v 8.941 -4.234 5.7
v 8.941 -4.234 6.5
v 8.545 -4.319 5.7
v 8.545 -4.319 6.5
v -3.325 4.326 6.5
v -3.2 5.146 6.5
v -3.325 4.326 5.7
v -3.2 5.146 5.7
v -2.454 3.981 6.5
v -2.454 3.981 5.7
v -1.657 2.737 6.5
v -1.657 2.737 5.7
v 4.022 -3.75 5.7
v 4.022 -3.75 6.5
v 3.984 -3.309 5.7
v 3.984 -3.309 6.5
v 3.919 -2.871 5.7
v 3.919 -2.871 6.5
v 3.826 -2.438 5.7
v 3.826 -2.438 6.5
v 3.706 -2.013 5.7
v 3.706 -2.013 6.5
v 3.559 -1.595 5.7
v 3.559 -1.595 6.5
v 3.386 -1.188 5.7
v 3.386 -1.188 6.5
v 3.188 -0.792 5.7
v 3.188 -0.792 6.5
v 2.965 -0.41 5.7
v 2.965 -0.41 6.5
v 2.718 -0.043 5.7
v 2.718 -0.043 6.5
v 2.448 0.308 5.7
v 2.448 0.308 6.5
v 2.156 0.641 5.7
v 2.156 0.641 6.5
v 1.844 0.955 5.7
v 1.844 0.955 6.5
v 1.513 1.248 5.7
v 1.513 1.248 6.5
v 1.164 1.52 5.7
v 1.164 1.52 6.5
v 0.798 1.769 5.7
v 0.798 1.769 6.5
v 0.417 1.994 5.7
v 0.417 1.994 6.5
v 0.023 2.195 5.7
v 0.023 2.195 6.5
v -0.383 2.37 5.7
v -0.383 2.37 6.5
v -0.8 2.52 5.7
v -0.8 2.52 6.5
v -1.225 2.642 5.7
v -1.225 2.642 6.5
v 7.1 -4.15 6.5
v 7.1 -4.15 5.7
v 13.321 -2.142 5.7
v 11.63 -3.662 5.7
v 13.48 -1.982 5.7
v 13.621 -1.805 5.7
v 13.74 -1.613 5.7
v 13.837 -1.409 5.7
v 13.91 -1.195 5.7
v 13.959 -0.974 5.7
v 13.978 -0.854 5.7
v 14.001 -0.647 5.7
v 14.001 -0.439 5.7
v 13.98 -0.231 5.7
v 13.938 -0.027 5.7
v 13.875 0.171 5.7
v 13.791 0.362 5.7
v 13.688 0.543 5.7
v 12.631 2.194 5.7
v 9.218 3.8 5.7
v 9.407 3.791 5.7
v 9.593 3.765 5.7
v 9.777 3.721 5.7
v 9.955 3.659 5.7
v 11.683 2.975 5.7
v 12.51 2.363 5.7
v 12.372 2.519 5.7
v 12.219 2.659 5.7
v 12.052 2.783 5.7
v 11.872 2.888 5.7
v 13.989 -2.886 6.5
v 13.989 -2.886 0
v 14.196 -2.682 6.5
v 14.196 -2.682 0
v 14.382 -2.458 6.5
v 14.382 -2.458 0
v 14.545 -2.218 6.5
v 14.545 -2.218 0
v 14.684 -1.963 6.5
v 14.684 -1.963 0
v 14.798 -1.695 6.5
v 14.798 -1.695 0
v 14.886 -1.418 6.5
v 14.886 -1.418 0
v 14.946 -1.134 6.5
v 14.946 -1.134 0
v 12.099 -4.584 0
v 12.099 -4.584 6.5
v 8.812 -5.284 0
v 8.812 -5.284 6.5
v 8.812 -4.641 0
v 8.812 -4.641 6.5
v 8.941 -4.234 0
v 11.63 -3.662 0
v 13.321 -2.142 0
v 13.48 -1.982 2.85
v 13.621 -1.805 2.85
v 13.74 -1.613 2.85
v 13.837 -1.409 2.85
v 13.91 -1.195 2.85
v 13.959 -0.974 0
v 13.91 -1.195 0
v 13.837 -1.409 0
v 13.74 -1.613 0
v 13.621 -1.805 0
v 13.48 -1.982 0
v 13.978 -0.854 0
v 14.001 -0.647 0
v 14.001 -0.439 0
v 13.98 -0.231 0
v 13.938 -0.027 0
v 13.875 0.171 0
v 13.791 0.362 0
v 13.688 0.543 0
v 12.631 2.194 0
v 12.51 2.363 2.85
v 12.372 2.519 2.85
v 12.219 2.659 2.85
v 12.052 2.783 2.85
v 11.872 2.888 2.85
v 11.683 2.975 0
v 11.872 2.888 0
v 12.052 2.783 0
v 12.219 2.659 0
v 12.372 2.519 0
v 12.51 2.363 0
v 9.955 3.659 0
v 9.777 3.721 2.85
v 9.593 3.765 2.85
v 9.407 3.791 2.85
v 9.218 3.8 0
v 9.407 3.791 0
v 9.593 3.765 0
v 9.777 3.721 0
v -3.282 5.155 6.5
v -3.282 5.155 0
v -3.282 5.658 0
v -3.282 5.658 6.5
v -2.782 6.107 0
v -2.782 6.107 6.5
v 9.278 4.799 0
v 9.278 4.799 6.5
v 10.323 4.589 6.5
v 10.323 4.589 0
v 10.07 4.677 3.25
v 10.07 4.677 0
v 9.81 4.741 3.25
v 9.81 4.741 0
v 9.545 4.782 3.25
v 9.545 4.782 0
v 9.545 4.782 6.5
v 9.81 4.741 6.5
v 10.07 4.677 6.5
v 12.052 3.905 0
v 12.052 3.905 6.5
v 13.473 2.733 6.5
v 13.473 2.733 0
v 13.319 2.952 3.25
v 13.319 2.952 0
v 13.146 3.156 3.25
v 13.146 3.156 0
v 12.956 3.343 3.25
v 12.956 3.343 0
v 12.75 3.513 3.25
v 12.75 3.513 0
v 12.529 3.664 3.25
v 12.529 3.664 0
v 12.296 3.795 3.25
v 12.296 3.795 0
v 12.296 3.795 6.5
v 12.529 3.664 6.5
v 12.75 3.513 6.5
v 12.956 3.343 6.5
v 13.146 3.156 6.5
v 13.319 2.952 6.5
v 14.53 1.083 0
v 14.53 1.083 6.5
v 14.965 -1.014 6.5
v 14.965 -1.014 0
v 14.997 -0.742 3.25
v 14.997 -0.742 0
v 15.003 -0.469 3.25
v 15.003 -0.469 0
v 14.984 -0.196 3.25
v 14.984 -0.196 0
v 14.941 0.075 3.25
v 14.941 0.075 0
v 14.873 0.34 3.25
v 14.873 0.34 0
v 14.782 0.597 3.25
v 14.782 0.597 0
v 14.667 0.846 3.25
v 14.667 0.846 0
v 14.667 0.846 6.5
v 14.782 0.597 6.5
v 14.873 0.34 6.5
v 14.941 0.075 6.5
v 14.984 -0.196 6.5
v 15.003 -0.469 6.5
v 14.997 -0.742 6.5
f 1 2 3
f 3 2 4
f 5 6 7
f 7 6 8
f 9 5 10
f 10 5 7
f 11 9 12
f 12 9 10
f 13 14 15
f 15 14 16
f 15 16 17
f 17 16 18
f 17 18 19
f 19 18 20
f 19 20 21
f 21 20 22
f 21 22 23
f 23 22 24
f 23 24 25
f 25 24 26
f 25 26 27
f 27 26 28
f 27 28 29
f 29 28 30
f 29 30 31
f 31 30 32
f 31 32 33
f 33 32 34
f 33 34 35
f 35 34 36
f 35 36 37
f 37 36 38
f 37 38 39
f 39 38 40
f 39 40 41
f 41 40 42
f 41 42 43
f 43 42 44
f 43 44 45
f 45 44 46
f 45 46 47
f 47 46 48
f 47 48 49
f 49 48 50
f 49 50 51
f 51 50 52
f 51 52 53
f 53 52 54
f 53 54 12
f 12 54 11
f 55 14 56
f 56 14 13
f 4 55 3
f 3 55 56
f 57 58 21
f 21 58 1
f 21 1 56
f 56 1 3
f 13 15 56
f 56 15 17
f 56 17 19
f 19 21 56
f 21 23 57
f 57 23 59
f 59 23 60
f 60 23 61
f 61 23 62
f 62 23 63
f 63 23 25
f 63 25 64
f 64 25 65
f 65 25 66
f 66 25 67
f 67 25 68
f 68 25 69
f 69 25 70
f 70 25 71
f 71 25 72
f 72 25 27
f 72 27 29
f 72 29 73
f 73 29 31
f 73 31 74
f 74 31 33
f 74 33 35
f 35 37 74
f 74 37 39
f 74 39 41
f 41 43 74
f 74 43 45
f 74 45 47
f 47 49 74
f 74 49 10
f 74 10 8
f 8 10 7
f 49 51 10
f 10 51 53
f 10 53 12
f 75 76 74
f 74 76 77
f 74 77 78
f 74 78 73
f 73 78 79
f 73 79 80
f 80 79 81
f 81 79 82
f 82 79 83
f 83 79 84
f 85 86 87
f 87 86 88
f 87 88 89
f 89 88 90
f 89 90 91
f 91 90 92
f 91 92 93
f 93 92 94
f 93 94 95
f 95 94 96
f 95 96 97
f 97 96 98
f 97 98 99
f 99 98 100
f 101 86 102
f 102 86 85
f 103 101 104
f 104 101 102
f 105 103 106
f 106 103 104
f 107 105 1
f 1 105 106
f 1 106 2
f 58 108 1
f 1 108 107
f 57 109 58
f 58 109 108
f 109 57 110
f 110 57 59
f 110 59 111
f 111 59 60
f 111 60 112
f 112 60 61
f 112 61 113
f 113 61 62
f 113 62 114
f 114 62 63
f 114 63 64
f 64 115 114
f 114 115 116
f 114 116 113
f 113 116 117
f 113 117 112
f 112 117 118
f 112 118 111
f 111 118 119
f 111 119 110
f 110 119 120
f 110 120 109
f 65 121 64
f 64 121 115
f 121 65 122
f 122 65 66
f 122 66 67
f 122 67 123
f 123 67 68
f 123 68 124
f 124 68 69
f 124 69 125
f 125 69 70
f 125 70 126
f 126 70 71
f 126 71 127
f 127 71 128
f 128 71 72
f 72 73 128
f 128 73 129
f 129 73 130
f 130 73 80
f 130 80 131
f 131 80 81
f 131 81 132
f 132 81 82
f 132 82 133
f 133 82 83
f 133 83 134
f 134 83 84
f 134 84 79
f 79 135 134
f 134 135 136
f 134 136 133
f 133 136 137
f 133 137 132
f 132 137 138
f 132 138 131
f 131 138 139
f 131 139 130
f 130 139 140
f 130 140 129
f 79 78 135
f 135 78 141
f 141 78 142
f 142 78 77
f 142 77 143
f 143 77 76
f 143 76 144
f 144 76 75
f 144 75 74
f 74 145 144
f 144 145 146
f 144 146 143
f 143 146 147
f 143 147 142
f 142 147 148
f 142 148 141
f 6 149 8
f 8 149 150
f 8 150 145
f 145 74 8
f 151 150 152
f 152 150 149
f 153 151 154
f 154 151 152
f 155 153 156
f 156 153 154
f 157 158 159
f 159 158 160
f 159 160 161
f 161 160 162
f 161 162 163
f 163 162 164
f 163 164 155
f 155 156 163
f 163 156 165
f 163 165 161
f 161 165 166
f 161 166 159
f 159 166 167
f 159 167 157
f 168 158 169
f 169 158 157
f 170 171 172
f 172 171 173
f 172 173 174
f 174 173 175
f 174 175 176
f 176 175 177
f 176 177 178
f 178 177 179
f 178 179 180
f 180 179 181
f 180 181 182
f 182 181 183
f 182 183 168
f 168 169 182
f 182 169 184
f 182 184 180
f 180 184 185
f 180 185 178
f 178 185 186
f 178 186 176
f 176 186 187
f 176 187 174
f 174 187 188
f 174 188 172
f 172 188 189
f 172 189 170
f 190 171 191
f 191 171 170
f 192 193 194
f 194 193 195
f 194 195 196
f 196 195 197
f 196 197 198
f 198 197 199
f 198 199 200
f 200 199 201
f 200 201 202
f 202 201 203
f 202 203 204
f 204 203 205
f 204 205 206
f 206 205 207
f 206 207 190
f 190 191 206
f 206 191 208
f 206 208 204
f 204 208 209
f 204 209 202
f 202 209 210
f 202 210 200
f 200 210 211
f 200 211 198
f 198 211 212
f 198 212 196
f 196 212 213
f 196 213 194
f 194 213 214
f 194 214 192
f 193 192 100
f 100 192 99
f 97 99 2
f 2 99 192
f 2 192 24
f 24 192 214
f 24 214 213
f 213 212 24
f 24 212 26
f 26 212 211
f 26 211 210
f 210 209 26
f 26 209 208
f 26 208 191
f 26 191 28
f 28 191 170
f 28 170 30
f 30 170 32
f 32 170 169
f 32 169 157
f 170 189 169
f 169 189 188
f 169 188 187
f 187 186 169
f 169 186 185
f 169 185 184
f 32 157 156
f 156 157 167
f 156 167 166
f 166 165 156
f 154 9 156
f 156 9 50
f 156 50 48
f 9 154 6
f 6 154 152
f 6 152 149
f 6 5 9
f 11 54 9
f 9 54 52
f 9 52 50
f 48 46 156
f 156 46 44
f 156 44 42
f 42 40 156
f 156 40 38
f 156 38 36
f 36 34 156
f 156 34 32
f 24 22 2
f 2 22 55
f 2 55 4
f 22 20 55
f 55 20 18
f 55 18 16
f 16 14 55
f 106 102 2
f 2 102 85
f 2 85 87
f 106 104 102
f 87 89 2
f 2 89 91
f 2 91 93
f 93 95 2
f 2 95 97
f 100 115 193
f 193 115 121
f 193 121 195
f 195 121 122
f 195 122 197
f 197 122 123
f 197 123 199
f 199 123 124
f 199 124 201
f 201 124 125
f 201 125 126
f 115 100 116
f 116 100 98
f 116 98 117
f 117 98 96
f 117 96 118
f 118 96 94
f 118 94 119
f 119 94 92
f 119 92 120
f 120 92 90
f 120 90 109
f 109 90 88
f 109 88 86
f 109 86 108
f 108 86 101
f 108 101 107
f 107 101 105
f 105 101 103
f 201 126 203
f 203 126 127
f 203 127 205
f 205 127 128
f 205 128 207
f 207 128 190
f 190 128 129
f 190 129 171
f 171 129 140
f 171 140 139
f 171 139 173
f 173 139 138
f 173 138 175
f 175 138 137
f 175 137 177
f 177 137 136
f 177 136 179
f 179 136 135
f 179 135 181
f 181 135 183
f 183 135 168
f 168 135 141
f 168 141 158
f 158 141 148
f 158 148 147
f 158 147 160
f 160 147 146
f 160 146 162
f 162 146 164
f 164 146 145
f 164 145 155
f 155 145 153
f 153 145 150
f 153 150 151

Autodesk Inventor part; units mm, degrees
ref_plane "YZ Plane" through (0, 0, 0) normal (1, 0, 0) x (0, 1, 0)
ref_plane "XZ Plane" through (0, 0, 0) normal (0, 1, 0) x (-1, 0, 0)
ref_plane "XY Plane" through (0, 0, 0) normal (0, 0, 1) x (1, 0, 0)
sketch "Boceto1" plane through (0, 0, 0) normal (0, 0, 1) x (1, 0, 0)
  line L0 (8.9411, -4.2344) -> (11.6298, -3.6616)
  line L1 (11.6298, -3.6616) -> (13.3209, -2.1424)
  arc A0 (13.3209, -2.1424) -> (13.9587, -0.9739) centre (11.9843, -0.6546) ccw
  line L2 (13.9587, -0.9739) -> (13.978, -0.8543)
  arc A1 (9.9548, 3.6595) -> (9.2184, 3.8) centre (9.2184, 1.8) ccw
  line L3 (9.9548, 3.6595) -> (11.6833, 2.9749)
  arc A2 (12.6312, 2.1939) -> (11.6833, 2.9749) centre (10.9469, 1.1154) ccw
  line L4 (12.6312, 2.1939) -> (13.688, 0.5435)
  line L5 (14.1, 2.7373) -> (14.1, -1.982) construction
  arc A3 (13.978, -0.8543) -> (13.688, 0.5435) centre (12.0037, -0.535) ccw
  line L6 (-3.2, 5.1465) -> (9.2184, 3.8)
  arc A4 (10.323, 4.5892) -> (9.2779, 4.7994) centre (9.2184, 1.8) ccw
  line L7 (10.323, 4.5892) -> (12.0516, 3.9047)
  arc A5 (13.4734, 2.7331) -> (12.0516, 3.9047) centre (10.9469, 1.1154) ccw
  line L8 (13.4734, 2.7331) -> (14.5302, 1.0827)
  arc A6 (14.9652, -1.0139) -> (14.5302, 1.0827) centre (12.0037, -0.535) ccw
  line L9 (14.9652, -1.0139) -> (14.9459, -1.1335)
  arc A7 (13.9892, -2.8863) -> (14.9459, -1.1335) centre (11.9843, -0.6546) ccw
  line L10 (13.9892, -2.8863) -> (12.0994, -4.584)
  line L11 (12.0994, -4.584) -> (8.8118, -5.2844)
  line L12 (-2.782, 6.107) -> (9.2779, 4.7994)
  line L13 (9.2184, 3.8) -> (-3.2, 5.1465)
  line L14 (-3.2816, 5.1553) -> (-3.2, 5.1465)
  line L15 (8.8118, -4.6408) -> (8.9411, -4.2344)
  line L16 (-3.2816, 5.6583) -> (-2.782, 6.107)
  line L17 (-3.2816, 5.6583) -> (-3.2816, 5.1553)
  line L18 (8.8118, -5.2844) -> (8.8118, -4.6408)
  point P0 (0, 0)
  point P1 (14.1, -0.1)
  point P2 (9.6, 3.8)
  dimension "d1" = 2
  dimension "d2" = 1
extrude "Extrusión1" add sketch "Boceto1" along normal blind 6.5
sketch "Boceto2" plane through (0, 0, 6.5) normal (0, 0, 1) x (1, 0, 0)
  line L0 (7.1, -4.15) -> (7.1, -7.1226) construction
  line L1 (-3.2, 3.2) -> (-3.2, -3.4) construction
  line L2 (-1.4, 3.8) -> (-1.4, 6.2978) construction
  line L3 (14.1, 2.7373) -> (14.1, -1.982) construction
  line L4 (7.1, -4.15) -> (8.5447, -4.3189)
  line L5 (8.5447, -4.3189) -> (11.6298, -3.6616)
  line L6 (11.6298, -3.6616) -> (13.3209, -2.1424)
  line L7 (13.9587, -0.9739) -> (13.978, -0.8543)
  line L8 (9.9548, 3.6595) -> (11.6833, 2.9749)
  line L9 (12.6312, 2.1939) -> (13.688, 0.5435)
  arc A0 (12.6312, 2.1939) -> (11.6833, 2.9749) centre (10.9469, 1.1154) ccw
  arc A1 (9.9548, 3.6595) -> (9.2184, 3.8) centre (9.2184, 1.8) ccw
  arc A2 (13.978, -0.8543) -> (13.688, 0.5435) centre (12.0037, -0.535) ccw
  arc A3 (13.3209, -2.1424) -> (13.9587, -0.9739) centre (11.9843, -0.6546) ccw
  line L10 (-1.6574, 2.7373) -> (-2.4537, 3.981)
  line L11 (-2.4537, 3.981) -> (-3.3251, 4.3261)
  line L12 (-3.3251, 4.3261) -> (-3.2, 5.1465)
  line L13 (-3.2, 5.1465) -> (9.2184, 3.8)
  line L14 (7.1, -4.15) -> (4.0215, -3.7498)
  arc A4 (4.0215, -3.7498) -> (-1.6574, 2.7373) centre (-2.942, -4.1165) ccw
  point P0 (0, 0)
  point P1 (0, 0)
  point P2 (9.6, 3.8)
  point P3 (14.1, -0.1)
  dimension "d7" = 4.15
  dimension "d8" = 10.3
  dimension "d9" = 3.8
  dimension "d10" = 1.8
  dimension "d11" = 11
  dimension "d12" = 7
  dimension "d13" = 2
extrude "Extrusión2" add sketch "Boceto2" against normal blind 0.8
properties part number "Pieza3_Carcasa_3DPrint"
